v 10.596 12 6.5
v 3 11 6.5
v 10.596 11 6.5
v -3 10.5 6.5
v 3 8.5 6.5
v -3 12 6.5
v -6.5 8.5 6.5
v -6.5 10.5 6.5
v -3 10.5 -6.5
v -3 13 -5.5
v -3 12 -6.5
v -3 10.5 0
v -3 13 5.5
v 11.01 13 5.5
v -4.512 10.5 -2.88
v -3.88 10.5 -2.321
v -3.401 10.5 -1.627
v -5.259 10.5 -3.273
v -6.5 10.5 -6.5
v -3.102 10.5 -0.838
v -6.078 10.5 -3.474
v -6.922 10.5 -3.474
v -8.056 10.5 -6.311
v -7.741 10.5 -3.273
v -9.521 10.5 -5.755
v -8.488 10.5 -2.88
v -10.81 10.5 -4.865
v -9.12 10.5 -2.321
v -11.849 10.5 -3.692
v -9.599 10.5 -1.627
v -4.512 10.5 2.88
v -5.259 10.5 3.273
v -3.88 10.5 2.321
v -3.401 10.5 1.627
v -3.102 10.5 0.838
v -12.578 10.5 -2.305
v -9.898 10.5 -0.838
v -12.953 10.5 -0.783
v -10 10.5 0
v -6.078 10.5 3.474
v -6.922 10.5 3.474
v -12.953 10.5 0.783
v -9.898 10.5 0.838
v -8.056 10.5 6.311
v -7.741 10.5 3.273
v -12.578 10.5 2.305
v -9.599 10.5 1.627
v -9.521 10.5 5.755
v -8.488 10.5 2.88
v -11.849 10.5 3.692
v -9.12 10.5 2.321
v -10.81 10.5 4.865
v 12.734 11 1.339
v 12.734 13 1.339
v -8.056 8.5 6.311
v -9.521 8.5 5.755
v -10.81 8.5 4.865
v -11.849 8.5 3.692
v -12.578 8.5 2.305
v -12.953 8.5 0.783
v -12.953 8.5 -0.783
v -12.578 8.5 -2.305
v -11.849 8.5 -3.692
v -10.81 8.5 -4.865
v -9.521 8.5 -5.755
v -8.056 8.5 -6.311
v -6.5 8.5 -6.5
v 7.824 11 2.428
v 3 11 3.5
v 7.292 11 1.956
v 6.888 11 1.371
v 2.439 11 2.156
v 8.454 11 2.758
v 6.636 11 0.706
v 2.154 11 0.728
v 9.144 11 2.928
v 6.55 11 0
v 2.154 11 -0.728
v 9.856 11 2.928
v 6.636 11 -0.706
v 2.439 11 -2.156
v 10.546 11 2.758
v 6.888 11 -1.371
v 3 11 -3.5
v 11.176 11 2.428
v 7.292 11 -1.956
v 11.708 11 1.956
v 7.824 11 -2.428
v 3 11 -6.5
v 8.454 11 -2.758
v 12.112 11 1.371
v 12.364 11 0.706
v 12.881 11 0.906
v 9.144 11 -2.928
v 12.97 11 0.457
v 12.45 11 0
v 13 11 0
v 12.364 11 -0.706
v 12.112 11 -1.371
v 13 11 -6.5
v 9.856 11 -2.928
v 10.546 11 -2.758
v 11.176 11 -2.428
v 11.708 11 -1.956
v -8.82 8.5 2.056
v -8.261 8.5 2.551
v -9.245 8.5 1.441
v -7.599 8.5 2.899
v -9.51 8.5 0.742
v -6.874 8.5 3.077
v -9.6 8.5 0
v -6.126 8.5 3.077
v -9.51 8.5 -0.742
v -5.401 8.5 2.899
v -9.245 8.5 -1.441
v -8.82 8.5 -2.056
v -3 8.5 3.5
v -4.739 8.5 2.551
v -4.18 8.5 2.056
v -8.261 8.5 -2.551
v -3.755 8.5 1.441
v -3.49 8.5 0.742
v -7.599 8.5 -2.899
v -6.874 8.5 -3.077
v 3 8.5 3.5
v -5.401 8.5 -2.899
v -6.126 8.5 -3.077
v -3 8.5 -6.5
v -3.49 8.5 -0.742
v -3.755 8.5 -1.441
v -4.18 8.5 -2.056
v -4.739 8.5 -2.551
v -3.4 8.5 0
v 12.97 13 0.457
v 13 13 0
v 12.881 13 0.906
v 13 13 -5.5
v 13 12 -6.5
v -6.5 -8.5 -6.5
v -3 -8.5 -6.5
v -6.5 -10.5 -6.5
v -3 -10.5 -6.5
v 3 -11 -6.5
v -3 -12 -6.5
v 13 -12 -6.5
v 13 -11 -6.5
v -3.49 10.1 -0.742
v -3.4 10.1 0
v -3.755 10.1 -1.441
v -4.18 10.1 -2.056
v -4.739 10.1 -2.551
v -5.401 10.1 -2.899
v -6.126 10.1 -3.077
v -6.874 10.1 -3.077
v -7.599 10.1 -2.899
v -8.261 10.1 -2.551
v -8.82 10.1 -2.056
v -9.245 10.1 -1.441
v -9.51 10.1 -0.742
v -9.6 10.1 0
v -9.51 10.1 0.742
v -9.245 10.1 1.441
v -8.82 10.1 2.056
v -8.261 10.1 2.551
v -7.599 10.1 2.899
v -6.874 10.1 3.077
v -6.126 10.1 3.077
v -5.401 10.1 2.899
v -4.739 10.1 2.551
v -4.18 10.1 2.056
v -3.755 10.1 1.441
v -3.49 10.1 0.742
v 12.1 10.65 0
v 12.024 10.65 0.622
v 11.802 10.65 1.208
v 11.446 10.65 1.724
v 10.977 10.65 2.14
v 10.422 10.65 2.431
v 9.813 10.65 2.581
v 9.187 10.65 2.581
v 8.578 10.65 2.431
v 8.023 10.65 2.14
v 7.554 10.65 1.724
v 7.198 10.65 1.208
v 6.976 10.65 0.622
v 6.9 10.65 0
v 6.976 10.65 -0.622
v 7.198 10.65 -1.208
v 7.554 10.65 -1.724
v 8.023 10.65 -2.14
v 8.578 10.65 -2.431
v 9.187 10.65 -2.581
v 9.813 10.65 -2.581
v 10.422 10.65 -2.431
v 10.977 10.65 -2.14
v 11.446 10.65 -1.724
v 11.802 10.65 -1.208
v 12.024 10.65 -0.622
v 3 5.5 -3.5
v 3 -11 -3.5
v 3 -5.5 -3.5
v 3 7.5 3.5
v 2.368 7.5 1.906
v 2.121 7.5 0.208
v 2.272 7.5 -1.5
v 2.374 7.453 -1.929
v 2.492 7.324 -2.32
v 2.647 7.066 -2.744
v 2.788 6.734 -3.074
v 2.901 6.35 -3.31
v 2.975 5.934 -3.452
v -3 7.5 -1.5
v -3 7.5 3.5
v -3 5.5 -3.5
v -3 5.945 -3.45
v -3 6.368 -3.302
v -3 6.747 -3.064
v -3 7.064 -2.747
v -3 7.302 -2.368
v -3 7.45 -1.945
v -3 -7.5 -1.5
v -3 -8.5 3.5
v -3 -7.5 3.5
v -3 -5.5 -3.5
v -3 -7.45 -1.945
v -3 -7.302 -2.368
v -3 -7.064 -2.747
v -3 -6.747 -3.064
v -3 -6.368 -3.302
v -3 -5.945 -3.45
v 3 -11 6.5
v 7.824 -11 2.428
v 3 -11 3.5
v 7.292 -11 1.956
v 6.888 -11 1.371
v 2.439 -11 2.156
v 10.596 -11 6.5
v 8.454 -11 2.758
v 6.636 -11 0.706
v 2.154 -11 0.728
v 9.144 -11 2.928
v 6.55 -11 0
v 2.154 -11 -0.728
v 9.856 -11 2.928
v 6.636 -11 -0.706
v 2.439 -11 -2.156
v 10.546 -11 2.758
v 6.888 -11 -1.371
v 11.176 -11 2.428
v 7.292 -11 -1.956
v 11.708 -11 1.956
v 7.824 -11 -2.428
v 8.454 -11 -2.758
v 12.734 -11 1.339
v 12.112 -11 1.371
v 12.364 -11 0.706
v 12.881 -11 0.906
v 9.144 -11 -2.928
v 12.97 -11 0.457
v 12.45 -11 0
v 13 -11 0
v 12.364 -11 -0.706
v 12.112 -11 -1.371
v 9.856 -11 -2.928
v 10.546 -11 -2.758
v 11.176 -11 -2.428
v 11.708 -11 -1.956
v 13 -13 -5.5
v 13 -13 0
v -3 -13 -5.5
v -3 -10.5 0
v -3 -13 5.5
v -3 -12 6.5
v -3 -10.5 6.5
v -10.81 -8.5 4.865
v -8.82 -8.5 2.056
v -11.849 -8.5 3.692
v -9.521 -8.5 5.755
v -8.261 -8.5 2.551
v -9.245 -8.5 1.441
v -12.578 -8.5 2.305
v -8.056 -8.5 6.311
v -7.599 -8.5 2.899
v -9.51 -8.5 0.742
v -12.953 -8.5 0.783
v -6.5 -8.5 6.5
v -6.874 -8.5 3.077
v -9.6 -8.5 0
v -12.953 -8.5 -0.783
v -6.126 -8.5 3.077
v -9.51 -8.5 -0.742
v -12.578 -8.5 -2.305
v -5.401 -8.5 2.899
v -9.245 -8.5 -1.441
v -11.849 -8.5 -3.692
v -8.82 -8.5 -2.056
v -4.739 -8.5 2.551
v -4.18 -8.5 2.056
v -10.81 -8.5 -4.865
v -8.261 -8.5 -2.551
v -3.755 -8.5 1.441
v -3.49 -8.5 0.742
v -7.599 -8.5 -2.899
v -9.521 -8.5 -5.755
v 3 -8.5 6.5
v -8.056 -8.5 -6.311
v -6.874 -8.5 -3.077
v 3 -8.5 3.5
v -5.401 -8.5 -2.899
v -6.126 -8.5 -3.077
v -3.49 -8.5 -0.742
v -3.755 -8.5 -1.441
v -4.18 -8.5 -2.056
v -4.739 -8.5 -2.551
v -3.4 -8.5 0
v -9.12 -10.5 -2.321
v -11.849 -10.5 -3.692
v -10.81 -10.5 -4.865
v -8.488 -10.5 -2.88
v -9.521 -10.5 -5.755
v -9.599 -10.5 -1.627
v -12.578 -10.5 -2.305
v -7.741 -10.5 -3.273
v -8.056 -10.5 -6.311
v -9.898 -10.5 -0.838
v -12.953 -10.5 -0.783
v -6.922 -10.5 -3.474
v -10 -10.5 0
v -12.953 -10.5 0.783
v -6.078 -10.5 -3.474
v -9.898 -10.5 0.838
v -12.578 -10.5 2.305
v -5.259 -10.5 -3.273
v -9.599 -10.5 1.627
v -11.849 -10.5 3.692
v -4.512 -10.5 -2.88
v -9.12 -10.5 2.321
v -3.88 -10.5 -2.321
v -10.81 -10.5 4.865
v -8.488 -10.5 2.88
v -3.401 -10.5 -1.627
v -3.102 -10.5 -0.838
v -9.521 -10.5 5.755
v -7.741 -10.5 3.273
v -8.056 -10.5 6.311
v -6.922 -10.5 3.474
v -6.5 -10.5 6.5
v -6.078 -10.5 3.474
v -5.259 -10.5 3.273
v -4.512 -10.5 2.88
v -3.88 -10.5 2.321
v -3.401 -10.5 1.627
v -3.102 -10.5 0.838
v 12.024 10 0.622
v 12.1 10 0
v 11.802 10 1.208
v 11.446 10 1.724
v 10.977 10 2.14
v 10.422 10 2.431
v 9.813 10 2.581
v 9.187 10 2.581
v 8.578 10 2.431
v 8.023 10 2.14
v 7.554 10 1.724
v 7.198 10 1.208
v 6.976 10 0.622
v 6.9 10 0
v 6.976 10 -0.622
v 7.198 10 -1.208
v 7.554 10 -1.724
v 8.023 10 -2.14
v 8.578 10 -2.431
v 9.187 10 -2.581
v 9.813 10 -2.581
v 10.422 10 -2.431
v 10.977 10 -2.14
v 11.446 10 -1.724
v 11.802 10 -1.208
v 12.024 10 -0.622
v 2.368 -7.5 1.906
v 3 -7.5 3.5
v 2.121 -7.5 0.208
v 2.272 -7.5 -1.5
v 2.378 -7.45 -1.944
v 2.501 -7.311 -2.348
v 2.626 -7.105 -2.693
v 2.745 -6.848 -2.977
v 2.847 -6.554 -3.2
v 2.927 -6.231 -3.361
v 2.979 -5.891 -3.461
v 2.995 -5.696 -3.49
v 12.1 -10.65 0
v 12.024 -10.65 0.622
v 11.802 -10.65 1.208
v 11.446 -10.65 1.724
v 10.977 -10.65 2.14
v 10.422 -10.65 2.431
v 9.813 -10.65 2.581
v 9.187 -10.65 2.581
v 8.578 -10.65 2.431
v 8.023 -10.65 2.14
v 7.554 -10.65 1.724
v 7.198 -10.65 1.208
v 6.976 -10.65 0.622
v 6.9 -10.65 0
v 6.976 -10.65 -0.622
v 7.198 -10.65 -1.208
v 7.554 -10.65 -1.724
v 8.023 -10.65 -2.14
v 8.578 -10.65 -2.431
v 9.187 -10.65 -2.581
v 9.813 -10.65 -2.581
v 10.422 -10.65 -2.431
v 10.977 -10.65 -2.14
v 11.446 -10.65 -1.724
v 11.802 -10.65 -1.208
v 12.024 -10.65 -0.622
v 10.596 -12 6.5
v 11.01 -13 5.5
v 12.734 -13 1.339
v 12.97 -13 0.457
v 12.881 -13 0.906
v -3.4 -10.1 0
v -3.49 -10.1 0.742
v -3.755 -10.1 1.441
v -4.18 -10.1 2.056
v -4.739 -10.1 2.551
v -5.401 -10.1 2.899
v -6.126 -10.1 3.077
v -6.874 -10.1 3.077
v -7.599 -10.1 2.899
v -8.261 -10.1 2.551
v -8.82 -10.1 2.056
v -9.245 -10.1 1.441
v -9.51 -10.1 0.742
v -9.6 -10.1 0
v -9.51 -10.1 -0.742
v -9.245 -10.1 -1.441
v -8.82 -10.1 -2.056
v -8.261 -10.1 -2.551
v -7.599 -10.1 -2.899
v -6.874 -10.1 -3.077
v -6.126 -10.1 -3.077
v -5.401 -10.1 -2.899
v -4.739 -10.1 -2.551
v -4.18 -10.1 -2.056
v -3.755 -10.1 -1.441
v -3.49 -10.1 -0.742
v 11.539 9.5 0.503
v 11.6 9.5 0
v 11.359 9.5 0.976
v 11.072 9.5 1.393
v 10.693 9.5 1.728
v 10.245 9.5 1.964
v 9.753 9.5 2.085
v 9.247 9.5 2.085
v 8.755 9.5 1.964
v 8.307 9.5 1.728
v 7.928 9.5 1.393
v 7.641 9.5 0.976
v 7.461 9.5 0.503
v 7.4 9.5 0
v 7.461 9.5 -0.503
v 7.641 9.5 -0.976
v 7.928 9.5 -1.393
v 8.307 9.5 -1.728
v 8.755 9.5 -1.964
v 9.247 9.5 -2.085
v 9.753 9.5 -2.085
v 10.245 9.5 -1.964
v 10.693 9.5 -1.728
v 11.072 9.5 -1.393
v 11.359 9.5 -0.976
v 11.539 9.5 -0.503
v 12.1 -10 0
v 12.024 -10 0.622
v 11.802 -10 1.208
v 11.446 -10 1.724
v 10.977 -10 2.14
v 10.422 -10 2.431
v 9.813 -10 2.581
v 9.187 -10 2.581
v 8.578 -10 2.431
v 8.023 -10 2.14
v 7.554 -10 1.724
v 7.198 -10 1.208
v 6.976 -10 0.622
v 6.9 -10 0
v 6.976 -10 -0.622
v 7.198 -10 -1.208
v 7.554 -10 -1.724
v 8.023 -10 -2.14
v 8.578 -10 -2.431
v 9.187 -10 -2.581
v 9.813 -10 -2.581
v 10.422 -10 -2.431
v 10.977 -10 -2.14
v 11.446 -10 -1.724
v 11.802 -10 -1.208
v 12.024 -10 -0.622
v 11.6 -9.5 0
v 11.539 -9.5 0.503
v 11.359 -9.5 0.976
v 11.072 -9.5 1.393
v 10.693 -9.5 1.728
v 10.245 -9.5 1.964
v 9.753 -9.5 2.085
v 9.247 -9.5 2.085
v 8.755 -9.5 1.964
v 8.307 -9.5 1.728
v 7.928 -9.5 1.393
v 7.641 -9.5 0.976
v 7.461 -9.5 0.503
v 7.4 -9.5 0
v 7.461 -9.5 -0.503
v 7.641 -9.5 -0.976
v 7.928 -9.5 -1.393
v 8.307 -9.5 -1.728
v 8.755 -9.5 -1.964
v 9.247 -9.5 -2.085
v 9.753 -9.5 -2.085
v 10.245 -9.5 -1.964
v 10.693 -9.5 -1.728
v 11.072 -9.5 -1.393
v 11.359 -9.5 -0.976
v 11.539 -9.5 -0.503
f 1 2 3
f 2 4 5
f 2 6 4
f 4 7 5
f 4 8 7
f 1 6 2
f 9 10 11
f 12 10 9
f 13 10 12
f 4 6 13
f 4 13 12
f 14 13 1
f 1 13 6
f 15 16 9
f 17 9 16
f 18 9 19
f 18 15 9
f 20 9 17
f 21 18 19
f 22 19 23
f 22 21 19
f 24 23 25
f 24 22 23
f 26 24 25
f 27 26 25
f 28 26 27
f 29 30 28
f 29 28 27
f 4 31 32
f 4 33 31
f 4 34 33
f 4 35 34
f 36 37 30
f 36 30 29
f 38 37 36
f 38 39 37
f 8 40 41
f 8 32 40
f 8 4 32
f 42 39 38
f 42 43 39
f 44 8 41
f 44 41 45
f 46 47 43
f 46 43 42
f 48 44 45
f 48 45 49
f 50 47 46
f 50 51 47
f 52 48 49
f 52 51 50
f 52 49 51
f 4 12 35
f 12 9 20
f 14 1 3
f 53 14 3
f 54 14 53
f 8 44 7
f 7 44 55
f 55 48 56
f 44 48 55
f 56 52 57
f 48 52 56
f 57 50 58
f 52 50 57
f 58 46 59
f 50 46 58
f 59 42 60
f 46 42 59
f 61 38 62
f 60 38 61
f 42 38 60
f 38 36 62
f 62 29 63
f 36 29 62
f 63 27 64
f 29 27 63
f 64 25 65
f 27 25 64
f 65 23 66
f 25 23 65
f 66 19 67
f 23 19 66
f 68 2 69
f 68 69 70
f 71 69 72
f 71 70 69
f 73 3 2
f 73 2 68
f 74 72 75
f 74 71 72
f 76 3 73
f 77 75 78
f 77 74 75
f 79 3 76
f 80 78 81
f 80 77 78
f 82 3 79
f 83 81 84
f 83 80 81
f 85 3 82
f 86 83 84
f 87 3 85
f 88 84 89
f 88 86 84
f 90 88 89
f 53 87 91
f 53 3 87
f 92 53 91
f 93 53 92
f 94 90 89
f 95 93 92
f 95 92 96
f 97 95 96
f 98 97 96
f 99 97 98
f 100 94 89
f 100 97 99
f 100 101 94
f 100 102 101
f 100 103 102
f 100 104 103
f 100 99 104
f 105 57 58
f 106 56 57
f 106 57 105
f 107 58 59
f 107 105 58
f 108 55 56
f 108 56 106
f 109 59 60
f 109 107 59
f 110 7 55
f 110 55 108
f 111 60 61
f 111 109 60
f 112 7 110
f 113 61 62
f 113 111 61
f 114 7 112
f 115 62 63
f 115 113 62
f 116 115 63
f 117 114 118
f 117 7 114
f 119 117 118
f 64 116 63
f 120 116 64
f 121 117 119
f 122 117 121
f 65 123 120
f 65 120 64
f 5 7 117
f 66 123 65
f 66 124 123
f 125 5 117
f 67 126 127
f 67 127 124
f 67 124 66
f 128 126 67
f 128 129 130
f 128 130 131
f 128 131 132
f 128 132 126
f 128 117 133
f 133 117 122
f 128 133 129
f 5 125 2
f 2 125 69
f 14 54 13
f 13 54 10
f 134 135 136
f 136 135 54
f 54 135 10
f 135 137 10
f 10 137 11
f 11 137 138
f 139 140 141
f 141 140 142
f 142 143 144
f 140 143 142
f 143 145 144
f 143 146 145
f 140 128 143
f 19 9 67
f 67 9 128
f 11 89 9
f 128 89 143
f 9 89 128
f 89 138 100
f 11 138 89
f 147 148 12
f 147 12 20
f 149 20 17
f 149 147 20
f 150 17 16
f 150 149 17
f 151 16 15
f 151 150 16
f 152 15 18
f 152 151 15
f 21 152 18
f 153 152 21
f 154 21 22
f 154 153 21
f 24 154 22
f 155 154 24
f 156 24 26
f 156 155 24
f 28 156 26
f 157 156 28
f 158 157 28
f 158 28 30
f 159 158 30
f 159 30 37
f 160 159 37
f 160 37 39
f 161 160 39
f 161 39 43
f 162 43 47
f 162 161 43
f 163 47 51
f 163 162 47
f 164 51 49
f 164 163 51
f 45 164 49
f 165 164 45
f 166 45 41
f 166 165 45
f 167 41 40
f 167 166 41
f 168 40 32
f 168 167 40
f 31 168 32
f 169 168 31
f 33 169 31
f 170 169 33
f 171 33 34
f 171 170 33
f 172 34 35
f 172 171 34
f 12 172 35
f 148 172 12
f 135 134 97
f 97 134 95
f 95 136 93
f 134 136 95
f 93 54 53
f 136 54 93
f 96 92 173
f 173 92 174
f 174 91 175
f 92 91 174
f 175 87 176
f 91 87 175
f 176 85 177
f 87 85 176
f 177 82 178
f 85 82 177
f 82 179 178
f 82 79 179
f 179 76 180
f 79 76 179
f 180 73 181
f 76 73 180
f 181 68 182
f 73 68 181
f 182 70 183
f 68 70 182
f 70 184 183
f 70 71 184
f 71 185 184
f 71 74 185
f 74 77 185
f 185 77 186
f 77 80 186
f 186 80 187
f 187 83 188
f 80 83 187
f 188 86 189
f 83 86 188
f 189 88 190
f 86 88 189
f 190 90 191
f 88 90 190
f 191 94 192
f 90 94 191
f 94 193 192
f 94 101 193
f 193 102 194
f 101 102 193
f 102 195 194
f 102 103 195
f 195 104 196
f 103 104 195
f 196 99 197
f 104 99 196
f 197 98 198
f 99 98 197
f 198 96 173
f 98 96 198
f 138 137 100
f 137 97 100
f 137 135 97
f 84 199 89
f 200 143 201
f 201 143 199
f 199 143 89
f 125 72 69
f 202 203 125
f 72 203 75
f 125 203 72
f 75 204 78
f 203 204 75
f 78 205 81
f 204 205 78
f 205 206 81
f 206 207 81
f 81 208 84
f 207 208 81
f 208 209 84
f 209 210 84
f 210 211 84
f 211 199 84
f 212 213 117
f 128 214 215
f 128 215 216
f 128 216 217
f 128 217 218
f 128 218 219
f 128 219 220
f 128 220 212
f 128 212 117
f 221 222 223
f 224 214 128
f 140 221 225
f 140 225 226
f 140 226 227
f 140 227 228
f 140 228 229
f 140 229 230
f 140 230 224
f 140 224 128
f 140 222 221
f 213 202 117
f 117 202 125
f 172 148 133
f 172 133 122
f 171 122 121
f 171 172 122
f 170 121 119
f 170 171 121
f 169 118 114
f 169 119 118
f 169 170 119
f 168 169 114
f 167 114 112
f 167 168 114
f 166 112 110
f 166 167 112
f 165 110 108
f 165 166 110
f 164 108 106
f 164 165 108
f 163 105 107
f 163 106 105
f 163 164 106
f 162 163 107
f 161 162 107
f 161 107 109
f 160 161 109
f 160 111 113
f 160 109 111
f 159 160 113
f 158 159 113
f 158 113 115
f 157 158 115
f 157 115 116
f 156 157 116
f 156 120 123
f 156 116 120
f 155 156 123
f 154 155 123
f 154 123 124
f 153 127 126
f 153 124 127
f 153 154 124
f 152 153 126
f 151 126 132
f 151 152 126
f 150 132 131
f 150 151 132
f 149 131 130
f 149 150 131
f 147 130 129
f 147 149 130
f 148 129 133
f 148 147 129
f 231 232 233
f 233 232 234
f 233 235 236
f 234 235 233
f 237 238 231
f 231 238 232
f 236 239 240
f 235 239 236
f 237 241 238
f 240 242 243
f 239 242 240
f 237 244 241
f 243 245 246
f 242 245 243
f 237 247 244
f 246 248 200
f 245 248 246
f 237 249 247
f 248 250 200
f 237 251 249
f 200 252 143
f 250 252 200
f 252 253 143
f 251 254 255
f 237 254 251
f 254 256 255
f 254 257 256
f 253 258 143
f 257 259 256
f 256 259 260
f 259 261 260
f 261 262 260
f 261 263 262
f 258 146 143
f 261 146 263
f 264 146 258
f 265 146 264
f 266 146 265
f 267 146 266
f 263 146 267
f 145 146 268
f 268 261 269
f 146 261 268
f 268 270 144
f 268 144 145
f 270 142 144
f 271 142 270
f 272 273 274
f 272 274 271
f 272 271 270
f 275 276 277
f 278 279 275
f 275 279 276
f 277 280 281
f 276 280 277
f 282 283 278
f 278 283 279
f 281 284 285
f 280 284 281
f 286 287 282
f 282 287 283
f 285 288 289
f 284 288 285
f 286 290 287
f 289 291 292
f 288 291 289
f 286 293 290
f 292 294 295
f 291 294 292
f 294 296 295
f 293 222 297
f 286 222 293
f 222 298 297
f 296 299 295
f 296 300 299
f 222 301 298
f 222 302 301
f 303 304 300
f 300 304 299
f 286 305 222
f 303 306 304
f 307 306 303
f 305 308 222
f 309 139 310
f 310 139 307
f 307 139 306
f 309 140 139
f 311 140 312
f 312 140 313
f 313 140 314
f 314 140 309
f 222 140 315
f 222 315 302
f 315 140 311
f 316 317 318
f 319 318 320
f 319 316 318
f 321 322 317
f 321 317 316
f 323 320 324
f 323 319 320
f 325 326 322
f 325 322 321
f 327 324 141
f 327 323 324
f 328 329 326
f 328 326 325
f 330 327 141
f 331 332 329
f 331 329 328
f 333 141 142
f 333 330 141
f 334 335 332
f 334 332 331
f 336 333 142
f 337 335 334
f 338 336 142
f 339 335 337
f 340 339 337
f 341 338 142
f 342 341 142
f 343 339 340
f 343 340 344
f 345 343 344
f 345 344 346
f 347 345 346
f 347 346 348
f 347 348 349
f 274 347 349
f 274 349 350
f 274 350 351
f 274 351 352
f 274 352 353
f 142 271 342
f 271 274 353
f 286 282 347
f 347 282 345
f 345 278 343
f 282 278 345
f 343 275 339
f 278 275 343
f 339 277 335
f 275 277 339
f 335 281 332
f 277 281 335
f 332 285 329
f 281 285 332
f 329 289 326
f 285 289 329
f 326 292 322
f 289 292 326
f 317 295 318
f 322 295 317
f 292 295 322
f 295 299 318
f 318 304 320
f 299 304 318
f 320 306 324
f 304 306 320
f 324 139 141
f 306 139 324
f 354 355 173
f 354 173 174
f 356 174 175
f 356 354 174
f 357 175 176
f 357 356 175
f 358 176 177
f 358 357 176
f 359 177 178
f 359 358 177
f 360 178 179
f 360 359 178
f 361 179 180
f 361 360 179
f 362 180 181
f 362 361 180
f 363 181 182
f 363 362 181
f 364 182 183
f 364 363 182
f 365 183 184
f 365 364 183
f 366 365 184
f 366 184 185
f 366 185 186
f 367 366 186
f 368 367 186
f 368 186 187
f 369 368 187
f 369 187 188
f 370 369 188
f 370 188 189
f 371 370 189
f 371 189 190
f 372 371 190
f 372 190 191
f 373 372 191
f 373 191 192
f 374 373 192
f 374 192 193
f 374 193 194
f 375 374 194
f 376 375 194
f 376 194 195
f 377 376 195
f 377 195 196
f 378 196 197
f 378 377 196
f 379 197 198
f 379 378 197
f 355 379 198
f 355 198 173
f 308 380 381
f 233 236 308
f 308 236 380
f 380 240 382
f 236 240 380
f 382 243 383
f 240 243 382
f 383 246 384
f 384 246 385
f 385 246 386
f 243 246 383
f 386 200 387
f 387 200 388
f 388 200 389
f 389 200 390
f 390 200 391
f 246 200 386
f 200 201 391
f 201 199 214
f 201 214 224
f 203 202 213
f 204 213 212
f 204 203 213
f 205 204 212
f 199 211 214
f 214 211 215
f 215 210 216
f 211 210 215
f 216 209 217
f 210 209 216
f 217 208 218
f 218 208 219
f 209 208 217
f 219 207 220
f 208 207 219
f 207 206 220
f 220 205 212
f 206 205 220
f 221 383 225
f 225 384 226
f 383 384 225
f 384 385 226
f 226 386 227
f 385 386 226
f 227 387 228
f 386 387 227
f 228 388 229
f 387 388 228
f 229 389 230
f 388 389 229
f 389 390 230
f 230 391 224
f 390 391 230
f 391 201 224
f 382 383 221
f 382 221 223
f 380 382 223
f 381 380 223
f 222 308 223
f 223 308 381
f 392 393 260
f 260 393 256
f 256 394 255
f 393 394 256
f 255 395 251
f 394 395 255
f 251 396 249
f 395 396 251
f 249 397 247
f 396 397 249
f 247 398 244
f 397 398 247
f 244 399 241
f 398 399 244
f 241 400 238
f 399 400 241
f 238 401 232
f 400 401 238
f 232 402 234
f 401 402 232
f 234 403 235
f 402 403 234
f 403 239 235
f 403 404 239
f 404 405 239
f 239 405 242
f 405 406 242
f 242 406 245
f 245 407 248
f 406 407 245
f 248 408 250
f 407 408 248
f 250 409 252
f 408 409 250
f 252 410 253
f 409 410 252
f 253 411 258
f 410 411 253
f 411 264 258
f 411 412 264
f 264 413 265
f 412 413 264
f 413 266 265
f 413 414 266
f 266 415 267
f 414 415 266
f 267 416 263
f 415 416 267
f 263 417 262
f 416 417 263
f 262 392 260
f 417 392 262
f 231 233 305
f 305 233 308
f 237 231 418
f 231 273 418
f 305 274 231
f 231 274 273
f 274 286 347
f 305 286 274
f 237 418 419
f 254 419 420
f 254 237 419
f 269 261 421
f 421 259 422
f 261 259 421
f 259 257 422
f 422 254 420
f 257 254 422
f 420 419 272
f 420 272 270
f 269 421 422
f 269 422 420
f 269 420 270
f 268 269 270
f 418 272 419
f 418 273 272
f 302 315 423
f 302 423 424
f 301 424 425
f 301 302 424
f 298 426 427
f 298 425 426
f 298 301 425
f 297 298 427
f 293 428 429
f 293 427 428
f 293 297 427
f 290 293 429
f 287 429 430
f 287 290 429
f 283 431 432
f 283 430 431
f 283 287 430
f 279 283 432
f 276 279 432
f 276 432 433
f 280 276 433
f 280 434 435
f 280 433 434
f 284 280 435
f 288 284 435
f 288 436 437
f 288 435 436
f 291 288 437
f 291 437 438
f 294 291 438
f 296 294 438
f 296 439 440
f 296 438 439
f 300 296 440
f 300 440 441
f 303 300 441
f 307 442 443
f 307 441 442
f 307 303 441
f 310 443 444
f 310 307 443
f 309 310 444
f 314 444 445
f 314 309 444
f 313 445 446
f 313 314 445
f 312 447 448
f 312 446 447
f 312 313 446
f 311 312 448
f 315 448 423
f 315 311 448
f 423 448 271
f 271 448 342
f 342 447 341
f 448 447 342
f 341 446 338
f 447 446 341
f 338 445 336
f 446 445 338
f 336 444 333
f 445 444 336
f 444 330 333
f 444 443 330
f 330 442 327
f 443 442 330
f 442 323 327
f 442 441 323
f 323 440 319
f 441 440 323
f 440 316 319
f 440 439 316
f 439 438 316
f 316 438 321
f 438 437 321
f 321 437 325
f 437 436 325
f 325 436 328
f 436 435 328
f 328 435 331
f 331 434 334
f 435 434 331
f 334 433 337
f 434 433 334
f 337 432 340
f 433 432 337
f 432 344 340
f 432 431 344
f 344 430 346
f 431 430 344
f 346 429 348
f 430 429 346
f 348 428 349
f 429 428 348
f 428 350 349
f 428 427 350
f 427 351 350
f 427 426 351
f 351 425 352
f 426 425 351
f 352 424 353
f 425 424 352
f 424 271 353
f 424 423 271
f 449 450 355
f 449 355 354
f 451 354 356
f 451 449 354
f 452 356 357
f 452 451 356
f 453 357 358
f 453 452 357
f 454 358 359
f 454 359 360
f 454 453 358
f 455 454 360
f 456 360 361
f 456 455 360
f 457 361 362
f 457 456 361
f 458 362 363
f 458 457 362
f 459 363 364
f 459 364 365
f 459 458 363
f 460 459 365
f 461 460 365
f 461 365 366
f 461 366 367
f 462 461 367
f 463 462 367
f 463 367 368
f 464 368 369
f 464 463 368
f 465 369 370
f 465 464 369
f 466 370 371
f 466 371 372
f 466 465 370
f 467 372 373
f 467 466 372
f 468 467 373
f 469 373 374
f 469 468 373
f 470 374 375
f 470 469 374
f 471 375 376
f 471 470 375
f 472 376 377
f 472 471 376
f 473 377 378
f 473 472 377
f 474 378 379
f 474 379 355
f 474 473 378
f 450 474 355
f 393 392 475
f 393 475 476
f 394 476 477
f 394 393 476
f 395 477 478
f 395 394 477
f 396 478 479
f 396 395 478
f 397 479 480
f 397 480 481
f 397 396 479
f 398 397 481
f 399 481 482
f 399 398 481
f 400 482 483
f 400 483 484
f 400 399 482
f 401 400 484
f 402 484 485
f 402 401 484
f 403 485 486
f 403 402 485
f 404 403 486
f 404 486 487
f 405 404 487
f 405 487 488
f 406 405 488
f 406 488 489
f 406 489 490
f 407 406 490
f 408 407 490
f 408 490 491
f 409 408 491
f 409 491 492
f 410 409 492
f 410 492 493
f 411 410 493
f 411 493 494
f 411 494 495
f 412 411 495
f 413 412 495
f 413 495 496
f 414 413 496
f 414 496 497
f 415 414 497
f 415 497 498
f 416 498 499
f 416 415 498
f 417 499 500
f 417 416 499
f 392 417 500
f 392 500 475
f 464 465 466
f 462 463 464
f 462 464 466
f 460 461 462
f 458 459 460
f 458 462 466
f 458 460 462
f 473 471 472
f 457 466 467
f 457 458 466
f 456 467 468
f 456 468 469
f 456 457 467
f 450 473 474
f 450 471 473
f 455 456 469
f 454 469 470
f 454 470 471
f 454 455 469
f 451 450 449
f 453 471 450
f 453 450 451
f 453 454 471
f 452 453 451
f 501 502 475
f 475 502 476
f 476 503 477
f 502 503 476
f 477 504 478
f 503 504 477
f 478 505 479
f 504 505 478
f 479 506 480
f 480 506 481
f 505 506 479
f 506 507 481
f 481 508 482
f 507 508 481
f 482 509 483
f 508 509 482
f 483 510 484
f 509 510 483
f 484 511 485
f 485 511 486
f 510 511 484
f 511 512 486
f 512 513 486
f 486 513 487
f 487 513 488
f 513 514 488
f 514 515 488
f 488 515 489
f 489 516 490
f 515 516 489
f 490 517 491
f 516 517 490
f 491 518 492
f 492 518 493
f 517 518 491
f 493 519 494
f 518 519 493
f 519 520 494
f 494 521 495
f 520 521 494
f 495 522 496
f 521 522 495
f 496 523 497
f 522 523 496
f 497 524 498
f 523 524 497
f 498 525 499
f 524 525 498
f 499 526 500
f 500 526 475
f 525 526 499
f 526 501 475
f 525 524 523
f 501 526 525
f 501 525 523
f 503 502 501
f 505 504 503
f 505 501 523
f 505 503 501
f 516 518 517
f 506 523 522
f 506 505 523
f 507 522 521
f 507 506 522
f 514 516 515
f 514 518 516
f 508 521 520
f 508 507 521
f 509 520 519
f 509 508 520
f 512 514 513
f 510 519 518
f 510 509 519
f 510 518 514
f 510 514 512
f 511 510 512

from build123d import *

# Parameters (mm, degrees)
SKETCH_R             = 3.1
PAD_DEPTH            = 13
SKETCH001_R          = 2.6
POCKET_DEPTH         = 11
POCKET001_DEPTH      = 8.5
POCKET002_DEPTH      = 13.001
POCKET002_DEPTH_BACK = -13.001
SKETCH004_W          = 18.821557
SKETCH004_H          = 5.678009
SKETCH004_H_2        = 5.407065
SKETCH004_W_2        = 10.052157
SKETCH004_H_3        = 19
POCKET003_DEPTH      = 6.501
POCKET003_DEPTH_BACK = -6.501
CHAMFER_SIZE         = 0.5
CHAMFER001_SIZE      = 0.35
CHAMFER002_SIZE      = 0.4
CHAMFER003_SIZE      = 1


with BuildPart() as part:
    # Sketch → Pad (new body, symmetric)
    with BuildSketch(Plane.XZ):
        with BuildLine():
            ThreePointArc((-6.5, 6.5), (-13, 0), (-6.5, -6.5))
            Line((-6.5, -6.5), (13, -6.5))
            Line((13, -6.5), (13, 0))
            ThreePointArc((13, 0), (12.932748, 0.682816), (12.733578, 1.339392))
            Line((10.595985, 6.5), (12.733578, 1.339392))
            Line((10.595985, 6.5), (-6.5, 6.5))
        make_face()
        with Locations((-6.5, 0)):
            Circle(SKETCH_R, mode=Mode.SUBTRACT)
    extrude(amount=PAD_DEPTH, both=True)

    # Sketch001 → Pocket (cut, symmetric)
    with BuildSketch(Plane.XZ):
        with BuildLine():
            ThreePointArc((3, 3.5), (2.117588, 0), (3, -3.5))
            Line((3, -3.5), (3, -7.382412))
            Line((3, -7.382412), (9.5, -7.382412))
            ThreePointArc((9.5, -7.382412), (16.882412, 0), (9.5, 7.382412))
            Line((9.5, 7.382412), (3, 7.382412))
            Line((3, 7.382412), (3, 3.5))
        make_face()
        with Locations((9.5, 0)):
            Circle(SKETCH001_R, mode=Mode.SUBTRACT)
    extrude(amount=POCKET_DEPTH, both=True, mode=Mode.SUBTRACT)

    # Sketch002 → Pocket001 (cut, symmetric)
    with BuildSketch(Plane.XZ):
        with BuildLine():
            Line((-3, 3.5), (3, 3.5))
            Line((3, 3.5), (3, -9.5))
            Line((3, -9.5), (14.967288, -9.5))
            Line((14.967288, -9.5), (14.967288, 9.5))
            Line((14.967288, 9.5), (-6.5, 9.5))
            ThreePointArc((-6.5, 9.5), (-16, 0), (-6.5, -9.5))
            Line((-3, -9.5), (-6.5, -9.5))
            Line((-3, 3.5), (-3, -9.5))
        make_face()
    extrude(amount=POCKET001_DEPTH, both=True, mode=Mode.SUBTRACT)

    # Sketch003 → Pocket002 (cut, two sides)
    with BuildSketch(Plane.YZ) as pocket002_sk:
        with BuildLine():
            Line((-7.5, 8.494664), (7.5, 8.494664))
            Line((7.5, 8.494664), (7.5, -1.5))
            ThreePointArc((5.5, -3.5), (6.914214, -2.914214), (7.5, -1.5))
            Line((5.5, -3.5), (-5.5, -3.5))
            ThreePointArc((-7.5, -1.5), (-6.914214, -2.914214), (-5.5, -3.5))
            Line((-7.5, -1.5), (-7.5, 8.494664))
        make_face()
    extrude(amount=-POCKET002_DEPTH, mode=Mode.SUBTRACT)
    extrude(pocket002_sk.sketch, amount=-POCKET002_DEPTH_BACK, mode=Mode.SUBTRACT)

    # Sketch004 → Pocket003 (cut, two sides)
    with BuildSketch(Plane.XY) as pocket003_sk:
        with Locations((-12.410778, 13.339004)):
            Rectangle(SKETCH004_W, SKETCH004_H)
        with Locations((-12.410778, -13.203532)):
            Rectangle(SKETCH004_W, SKETCH004_H_2)
        with Locations((10.204497, 0)):
            Rectangle(SKETCH004_W_2, SKETCH004_H_3)
    extrude(amount=-POCKET003_DEPTH, mode=Mode.SUBTRACT)
    extrude(pocket003_sk.sketch, amount=-POCKET003_DEPTH_BACK, mode=Mode.SUBTRACT)

    # Chamfer
    chamfer_edges = [part.edges().sort_by_distance(p)[0] for p in [
        (6.9, 9.5, 0),
        (6.9, -9.5, 0),
    ]]
    chamfer(chamfer_edges, length=CHAMFER_SIZE)

    # Chamfer001
    chamfer001_edges = [part.edges().sort_by_distance(p)[0] for p in [
        (6.9, 11, 0),
        (6.9, -11, 0),
    ]]
    chamfer(chamfer001_edges, length=CHAMFER001_SIZE)

    # Chamfer002
    chamfer002_edges = [part.edges().sort_by_distance(p)[0] for p in [
        (-9.6, -10.5, 0),
        (-9.6, 10.5, 0),
    ]]
    chamfer(chamfer002_edges, length=CHAMFER002_SIZE)

    # Chamfer003
    chamfer003_edges = [part.edges().sort_by_distance(p)[0] for p in [
        (3.797992, 13, 6.5),
        (5, 13, -6.5),
        (5, -13, -6.5),
        (3.797992, -13, 6.5),
    ]]
    chamfer(chamfer003_edges, length=CHAMFER003_SIZE)


solid = part.part
